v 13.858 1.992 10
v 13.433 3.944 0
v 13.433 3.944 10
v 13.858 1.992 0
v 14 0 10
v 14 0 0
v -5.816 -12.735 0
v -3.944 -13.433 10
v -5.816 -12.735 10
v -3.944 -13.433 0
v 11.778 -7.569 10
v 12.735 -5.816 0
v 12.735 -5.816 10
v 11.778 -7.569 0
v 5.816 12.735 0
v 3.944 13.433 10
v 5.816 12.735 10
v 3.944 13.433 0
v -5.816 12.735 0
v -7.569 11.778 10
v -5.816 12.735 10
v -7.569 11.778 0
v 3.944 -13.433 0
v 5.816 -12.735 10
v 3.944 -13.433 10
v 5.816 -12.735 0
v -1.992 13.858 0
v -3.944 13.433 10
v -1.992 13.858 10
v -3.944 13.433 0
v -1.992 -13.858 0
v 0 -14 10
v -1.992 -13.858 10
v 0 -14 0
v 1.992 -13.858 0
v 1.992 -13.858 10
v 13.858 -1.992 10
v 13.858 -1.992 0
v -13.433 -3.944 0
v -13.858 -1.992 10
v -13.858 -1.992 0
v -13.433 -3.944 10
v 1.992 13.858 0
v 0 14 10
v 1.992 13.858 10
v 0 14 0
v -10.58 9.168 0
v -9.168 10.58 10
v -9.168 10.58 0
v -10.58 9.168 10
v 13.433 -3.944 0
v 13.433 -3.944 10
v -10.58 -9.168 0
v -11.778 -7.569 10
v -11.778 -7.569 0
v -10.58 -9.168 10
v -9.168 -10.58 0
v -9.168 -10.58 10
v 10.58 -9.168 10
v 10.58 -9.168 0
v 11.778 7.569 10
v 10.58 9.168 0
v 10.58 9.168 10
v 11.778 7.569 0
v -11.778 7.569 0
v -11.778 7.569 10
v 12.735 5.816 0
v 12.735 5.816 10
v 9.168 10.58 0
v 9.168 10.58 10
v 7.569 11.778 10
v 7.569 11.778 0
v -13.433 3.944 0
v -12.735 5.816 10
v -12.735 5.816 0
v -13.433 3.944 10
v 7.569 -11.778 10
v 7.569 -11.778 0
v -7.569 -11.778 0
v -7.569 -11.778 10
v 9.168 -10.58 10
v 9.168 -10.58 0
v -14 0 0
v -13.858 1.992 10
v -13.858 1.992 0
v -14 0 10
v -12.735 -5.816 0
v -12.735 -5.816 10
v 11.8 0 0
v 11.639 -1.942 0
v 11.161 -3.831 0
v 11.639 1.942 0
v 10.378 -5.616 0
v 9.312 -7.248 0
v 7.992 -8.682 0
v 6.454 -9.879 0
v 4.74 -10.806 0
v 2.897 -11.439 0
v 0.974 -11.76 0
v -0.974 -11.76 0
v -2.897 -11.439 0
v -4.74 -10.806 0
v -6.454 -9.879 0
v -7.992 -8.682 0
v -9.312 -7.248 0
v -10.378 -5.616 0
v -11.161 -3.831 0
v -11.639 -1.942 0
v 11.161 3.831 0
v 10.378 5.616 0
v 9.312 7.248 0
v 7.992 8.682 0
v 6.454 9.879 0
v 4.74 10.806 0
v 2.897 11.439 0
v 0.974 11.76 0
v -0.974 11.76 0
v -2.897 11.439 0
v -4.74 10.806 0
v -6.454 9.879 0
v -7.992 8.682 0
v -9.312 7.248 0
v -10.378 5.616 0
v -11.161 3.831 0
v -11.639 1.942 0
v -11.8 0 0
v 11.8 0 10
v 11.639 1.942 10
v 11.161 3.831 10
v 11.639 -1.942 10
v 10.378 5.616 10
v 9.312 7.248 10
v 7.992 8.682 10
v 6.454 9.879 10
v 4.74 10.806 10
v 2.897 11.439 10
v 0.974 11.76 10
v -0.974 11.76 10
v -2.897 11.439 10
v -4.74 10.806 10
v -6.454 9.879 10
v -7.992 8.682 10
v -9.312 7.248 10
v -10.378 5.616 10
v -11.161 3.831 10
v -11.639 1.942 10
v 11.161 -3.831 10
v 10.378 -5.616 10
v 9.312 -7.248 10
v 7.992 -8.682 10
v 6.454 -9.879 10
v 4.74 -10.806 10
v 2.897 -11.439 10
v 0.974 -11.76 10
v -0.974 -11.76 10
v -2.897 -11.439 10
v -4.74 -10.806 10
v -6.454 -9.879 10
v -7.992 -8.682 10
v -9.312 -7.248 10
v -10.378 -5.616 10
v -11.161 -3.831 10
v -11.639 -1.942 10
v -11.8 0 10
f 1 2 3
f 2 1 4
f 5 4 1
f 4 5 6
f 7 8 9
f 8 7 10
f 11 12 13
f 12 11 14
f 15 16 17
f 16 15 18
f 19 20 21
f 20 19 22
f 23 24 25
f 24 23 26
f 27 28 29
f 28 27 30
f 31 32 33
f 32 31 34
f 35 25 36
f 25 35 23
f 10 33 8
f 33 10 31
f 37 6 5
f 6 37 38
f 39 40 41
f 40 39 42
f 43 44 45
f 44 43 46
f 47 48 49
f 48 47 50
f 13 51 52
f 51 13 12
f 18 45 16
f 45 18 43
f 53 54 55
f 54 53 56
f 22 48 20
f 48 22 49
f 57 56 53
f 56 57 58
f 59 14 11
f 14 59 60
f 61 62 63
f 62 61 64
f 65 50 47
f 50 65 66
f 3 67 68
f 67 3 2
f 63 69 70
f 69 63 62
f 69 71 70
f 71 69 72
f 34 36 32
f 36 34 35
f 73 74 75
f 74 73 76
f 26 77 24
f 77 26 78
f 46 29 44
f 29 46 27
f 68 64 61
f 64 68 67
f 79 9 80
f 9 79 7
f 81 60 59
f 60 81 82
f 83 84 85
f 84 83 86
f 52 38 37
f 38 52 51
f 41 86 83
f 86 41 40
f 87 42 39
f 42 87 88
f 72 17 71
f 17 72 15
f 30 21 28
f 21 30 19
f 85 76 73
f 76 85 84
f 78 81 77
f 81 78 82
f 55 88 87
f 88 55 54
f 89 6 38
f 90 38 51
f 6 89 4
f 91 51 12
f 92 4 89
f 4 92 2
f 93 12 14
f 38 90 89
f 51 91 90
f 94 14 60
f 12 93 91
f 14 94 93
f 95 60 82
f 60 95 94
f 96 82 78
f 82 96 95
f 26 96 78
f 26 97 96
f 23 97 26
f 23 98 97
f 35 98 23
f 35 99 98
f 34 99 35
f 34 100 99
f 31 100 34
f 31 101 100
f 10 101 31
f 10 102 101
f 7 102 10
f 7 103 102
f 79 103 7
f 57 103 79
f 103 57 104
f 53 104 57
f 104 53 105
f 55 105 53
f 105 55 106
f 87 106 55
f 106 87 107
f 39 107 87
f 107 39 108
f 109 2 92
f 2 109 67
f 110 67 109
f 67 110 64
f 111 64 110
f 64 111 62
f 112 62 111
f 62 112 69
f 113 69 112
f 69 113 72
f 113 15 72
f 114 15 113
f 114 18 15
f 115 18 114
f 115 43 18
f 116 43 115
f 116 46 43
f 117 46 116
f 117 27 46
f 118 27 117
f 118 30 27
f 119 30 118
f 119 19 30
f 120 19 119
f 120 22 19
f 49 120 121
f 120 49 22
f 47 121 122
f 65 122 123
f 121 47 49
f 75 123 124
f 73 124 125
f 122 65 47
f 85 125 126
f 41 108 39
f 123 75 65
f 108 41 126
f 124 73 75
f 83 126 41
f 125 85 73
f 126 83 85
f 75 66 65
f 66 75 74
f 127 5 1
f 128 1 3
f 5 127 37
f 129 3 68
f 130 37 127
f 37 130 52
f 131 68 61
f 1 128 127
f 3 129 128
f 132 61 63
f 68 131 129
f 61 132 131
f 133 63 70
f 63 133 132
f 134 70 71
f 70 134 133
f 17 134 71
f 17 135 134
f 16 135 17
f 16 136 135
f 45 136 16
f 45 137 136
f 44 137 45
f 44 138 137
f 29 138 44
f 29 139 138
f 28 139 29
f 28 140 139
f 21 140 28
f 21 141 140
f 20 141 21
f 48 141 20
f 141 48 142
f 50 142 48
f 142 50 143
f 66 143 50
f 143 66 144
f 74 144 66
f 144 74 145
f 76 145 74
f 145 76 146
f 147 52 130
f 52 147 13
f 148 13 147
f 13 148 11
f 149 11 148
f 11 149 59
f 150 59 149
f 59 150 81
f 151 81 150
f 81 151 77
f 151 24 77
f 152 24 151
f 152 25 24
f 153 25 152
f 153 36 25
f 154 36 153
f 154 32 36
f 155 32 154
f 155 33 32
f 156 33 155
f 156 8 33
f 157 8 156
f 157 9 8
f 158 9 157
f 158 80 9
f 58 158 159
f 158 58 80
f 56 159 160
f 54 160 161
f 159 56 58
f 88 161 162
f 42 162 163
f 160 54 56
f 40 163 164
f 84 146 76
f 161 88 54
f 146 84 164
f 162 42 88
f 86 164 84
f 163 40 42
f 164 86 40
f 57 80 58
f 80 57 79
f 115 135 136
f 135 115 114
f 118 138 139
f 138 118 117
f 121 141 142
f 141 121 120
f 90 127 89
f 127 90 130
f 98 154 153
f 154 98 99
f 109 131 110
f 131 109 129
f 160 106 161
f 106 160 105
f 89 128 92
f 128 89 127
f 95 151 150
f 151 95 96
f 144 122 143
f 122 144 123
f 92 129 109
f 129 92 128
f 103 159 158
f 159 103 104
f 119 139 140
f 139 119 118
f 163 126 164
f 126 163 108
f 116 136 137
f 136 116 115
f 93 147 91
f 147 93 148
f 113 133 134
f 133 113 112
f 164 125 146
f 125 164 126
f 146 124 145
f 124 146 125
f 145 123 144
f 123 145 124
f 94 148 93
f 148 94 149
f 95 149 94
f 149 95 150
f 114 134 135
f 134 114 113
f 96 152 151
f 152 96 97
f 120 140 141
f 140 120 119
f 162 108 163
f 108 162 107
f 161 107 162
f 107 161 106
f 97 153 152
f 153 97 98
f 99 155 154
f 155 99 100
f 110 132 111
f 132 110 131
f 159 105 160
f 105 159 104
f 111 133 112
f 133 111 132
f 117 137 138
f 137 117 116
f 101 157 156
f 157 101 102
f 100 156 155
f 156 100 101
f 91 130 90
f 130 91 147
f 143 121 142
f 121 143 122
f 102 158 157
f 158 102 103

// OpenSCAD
/*
- eyepiece tube
        - 24mm inner diameter
        - 26mm outer diameter
*/

$fa=2;

difference() {
    cylinder(d=28, h=10);
    translate([0,0,-1]) cylinder(d=23.6, h=12);
}
